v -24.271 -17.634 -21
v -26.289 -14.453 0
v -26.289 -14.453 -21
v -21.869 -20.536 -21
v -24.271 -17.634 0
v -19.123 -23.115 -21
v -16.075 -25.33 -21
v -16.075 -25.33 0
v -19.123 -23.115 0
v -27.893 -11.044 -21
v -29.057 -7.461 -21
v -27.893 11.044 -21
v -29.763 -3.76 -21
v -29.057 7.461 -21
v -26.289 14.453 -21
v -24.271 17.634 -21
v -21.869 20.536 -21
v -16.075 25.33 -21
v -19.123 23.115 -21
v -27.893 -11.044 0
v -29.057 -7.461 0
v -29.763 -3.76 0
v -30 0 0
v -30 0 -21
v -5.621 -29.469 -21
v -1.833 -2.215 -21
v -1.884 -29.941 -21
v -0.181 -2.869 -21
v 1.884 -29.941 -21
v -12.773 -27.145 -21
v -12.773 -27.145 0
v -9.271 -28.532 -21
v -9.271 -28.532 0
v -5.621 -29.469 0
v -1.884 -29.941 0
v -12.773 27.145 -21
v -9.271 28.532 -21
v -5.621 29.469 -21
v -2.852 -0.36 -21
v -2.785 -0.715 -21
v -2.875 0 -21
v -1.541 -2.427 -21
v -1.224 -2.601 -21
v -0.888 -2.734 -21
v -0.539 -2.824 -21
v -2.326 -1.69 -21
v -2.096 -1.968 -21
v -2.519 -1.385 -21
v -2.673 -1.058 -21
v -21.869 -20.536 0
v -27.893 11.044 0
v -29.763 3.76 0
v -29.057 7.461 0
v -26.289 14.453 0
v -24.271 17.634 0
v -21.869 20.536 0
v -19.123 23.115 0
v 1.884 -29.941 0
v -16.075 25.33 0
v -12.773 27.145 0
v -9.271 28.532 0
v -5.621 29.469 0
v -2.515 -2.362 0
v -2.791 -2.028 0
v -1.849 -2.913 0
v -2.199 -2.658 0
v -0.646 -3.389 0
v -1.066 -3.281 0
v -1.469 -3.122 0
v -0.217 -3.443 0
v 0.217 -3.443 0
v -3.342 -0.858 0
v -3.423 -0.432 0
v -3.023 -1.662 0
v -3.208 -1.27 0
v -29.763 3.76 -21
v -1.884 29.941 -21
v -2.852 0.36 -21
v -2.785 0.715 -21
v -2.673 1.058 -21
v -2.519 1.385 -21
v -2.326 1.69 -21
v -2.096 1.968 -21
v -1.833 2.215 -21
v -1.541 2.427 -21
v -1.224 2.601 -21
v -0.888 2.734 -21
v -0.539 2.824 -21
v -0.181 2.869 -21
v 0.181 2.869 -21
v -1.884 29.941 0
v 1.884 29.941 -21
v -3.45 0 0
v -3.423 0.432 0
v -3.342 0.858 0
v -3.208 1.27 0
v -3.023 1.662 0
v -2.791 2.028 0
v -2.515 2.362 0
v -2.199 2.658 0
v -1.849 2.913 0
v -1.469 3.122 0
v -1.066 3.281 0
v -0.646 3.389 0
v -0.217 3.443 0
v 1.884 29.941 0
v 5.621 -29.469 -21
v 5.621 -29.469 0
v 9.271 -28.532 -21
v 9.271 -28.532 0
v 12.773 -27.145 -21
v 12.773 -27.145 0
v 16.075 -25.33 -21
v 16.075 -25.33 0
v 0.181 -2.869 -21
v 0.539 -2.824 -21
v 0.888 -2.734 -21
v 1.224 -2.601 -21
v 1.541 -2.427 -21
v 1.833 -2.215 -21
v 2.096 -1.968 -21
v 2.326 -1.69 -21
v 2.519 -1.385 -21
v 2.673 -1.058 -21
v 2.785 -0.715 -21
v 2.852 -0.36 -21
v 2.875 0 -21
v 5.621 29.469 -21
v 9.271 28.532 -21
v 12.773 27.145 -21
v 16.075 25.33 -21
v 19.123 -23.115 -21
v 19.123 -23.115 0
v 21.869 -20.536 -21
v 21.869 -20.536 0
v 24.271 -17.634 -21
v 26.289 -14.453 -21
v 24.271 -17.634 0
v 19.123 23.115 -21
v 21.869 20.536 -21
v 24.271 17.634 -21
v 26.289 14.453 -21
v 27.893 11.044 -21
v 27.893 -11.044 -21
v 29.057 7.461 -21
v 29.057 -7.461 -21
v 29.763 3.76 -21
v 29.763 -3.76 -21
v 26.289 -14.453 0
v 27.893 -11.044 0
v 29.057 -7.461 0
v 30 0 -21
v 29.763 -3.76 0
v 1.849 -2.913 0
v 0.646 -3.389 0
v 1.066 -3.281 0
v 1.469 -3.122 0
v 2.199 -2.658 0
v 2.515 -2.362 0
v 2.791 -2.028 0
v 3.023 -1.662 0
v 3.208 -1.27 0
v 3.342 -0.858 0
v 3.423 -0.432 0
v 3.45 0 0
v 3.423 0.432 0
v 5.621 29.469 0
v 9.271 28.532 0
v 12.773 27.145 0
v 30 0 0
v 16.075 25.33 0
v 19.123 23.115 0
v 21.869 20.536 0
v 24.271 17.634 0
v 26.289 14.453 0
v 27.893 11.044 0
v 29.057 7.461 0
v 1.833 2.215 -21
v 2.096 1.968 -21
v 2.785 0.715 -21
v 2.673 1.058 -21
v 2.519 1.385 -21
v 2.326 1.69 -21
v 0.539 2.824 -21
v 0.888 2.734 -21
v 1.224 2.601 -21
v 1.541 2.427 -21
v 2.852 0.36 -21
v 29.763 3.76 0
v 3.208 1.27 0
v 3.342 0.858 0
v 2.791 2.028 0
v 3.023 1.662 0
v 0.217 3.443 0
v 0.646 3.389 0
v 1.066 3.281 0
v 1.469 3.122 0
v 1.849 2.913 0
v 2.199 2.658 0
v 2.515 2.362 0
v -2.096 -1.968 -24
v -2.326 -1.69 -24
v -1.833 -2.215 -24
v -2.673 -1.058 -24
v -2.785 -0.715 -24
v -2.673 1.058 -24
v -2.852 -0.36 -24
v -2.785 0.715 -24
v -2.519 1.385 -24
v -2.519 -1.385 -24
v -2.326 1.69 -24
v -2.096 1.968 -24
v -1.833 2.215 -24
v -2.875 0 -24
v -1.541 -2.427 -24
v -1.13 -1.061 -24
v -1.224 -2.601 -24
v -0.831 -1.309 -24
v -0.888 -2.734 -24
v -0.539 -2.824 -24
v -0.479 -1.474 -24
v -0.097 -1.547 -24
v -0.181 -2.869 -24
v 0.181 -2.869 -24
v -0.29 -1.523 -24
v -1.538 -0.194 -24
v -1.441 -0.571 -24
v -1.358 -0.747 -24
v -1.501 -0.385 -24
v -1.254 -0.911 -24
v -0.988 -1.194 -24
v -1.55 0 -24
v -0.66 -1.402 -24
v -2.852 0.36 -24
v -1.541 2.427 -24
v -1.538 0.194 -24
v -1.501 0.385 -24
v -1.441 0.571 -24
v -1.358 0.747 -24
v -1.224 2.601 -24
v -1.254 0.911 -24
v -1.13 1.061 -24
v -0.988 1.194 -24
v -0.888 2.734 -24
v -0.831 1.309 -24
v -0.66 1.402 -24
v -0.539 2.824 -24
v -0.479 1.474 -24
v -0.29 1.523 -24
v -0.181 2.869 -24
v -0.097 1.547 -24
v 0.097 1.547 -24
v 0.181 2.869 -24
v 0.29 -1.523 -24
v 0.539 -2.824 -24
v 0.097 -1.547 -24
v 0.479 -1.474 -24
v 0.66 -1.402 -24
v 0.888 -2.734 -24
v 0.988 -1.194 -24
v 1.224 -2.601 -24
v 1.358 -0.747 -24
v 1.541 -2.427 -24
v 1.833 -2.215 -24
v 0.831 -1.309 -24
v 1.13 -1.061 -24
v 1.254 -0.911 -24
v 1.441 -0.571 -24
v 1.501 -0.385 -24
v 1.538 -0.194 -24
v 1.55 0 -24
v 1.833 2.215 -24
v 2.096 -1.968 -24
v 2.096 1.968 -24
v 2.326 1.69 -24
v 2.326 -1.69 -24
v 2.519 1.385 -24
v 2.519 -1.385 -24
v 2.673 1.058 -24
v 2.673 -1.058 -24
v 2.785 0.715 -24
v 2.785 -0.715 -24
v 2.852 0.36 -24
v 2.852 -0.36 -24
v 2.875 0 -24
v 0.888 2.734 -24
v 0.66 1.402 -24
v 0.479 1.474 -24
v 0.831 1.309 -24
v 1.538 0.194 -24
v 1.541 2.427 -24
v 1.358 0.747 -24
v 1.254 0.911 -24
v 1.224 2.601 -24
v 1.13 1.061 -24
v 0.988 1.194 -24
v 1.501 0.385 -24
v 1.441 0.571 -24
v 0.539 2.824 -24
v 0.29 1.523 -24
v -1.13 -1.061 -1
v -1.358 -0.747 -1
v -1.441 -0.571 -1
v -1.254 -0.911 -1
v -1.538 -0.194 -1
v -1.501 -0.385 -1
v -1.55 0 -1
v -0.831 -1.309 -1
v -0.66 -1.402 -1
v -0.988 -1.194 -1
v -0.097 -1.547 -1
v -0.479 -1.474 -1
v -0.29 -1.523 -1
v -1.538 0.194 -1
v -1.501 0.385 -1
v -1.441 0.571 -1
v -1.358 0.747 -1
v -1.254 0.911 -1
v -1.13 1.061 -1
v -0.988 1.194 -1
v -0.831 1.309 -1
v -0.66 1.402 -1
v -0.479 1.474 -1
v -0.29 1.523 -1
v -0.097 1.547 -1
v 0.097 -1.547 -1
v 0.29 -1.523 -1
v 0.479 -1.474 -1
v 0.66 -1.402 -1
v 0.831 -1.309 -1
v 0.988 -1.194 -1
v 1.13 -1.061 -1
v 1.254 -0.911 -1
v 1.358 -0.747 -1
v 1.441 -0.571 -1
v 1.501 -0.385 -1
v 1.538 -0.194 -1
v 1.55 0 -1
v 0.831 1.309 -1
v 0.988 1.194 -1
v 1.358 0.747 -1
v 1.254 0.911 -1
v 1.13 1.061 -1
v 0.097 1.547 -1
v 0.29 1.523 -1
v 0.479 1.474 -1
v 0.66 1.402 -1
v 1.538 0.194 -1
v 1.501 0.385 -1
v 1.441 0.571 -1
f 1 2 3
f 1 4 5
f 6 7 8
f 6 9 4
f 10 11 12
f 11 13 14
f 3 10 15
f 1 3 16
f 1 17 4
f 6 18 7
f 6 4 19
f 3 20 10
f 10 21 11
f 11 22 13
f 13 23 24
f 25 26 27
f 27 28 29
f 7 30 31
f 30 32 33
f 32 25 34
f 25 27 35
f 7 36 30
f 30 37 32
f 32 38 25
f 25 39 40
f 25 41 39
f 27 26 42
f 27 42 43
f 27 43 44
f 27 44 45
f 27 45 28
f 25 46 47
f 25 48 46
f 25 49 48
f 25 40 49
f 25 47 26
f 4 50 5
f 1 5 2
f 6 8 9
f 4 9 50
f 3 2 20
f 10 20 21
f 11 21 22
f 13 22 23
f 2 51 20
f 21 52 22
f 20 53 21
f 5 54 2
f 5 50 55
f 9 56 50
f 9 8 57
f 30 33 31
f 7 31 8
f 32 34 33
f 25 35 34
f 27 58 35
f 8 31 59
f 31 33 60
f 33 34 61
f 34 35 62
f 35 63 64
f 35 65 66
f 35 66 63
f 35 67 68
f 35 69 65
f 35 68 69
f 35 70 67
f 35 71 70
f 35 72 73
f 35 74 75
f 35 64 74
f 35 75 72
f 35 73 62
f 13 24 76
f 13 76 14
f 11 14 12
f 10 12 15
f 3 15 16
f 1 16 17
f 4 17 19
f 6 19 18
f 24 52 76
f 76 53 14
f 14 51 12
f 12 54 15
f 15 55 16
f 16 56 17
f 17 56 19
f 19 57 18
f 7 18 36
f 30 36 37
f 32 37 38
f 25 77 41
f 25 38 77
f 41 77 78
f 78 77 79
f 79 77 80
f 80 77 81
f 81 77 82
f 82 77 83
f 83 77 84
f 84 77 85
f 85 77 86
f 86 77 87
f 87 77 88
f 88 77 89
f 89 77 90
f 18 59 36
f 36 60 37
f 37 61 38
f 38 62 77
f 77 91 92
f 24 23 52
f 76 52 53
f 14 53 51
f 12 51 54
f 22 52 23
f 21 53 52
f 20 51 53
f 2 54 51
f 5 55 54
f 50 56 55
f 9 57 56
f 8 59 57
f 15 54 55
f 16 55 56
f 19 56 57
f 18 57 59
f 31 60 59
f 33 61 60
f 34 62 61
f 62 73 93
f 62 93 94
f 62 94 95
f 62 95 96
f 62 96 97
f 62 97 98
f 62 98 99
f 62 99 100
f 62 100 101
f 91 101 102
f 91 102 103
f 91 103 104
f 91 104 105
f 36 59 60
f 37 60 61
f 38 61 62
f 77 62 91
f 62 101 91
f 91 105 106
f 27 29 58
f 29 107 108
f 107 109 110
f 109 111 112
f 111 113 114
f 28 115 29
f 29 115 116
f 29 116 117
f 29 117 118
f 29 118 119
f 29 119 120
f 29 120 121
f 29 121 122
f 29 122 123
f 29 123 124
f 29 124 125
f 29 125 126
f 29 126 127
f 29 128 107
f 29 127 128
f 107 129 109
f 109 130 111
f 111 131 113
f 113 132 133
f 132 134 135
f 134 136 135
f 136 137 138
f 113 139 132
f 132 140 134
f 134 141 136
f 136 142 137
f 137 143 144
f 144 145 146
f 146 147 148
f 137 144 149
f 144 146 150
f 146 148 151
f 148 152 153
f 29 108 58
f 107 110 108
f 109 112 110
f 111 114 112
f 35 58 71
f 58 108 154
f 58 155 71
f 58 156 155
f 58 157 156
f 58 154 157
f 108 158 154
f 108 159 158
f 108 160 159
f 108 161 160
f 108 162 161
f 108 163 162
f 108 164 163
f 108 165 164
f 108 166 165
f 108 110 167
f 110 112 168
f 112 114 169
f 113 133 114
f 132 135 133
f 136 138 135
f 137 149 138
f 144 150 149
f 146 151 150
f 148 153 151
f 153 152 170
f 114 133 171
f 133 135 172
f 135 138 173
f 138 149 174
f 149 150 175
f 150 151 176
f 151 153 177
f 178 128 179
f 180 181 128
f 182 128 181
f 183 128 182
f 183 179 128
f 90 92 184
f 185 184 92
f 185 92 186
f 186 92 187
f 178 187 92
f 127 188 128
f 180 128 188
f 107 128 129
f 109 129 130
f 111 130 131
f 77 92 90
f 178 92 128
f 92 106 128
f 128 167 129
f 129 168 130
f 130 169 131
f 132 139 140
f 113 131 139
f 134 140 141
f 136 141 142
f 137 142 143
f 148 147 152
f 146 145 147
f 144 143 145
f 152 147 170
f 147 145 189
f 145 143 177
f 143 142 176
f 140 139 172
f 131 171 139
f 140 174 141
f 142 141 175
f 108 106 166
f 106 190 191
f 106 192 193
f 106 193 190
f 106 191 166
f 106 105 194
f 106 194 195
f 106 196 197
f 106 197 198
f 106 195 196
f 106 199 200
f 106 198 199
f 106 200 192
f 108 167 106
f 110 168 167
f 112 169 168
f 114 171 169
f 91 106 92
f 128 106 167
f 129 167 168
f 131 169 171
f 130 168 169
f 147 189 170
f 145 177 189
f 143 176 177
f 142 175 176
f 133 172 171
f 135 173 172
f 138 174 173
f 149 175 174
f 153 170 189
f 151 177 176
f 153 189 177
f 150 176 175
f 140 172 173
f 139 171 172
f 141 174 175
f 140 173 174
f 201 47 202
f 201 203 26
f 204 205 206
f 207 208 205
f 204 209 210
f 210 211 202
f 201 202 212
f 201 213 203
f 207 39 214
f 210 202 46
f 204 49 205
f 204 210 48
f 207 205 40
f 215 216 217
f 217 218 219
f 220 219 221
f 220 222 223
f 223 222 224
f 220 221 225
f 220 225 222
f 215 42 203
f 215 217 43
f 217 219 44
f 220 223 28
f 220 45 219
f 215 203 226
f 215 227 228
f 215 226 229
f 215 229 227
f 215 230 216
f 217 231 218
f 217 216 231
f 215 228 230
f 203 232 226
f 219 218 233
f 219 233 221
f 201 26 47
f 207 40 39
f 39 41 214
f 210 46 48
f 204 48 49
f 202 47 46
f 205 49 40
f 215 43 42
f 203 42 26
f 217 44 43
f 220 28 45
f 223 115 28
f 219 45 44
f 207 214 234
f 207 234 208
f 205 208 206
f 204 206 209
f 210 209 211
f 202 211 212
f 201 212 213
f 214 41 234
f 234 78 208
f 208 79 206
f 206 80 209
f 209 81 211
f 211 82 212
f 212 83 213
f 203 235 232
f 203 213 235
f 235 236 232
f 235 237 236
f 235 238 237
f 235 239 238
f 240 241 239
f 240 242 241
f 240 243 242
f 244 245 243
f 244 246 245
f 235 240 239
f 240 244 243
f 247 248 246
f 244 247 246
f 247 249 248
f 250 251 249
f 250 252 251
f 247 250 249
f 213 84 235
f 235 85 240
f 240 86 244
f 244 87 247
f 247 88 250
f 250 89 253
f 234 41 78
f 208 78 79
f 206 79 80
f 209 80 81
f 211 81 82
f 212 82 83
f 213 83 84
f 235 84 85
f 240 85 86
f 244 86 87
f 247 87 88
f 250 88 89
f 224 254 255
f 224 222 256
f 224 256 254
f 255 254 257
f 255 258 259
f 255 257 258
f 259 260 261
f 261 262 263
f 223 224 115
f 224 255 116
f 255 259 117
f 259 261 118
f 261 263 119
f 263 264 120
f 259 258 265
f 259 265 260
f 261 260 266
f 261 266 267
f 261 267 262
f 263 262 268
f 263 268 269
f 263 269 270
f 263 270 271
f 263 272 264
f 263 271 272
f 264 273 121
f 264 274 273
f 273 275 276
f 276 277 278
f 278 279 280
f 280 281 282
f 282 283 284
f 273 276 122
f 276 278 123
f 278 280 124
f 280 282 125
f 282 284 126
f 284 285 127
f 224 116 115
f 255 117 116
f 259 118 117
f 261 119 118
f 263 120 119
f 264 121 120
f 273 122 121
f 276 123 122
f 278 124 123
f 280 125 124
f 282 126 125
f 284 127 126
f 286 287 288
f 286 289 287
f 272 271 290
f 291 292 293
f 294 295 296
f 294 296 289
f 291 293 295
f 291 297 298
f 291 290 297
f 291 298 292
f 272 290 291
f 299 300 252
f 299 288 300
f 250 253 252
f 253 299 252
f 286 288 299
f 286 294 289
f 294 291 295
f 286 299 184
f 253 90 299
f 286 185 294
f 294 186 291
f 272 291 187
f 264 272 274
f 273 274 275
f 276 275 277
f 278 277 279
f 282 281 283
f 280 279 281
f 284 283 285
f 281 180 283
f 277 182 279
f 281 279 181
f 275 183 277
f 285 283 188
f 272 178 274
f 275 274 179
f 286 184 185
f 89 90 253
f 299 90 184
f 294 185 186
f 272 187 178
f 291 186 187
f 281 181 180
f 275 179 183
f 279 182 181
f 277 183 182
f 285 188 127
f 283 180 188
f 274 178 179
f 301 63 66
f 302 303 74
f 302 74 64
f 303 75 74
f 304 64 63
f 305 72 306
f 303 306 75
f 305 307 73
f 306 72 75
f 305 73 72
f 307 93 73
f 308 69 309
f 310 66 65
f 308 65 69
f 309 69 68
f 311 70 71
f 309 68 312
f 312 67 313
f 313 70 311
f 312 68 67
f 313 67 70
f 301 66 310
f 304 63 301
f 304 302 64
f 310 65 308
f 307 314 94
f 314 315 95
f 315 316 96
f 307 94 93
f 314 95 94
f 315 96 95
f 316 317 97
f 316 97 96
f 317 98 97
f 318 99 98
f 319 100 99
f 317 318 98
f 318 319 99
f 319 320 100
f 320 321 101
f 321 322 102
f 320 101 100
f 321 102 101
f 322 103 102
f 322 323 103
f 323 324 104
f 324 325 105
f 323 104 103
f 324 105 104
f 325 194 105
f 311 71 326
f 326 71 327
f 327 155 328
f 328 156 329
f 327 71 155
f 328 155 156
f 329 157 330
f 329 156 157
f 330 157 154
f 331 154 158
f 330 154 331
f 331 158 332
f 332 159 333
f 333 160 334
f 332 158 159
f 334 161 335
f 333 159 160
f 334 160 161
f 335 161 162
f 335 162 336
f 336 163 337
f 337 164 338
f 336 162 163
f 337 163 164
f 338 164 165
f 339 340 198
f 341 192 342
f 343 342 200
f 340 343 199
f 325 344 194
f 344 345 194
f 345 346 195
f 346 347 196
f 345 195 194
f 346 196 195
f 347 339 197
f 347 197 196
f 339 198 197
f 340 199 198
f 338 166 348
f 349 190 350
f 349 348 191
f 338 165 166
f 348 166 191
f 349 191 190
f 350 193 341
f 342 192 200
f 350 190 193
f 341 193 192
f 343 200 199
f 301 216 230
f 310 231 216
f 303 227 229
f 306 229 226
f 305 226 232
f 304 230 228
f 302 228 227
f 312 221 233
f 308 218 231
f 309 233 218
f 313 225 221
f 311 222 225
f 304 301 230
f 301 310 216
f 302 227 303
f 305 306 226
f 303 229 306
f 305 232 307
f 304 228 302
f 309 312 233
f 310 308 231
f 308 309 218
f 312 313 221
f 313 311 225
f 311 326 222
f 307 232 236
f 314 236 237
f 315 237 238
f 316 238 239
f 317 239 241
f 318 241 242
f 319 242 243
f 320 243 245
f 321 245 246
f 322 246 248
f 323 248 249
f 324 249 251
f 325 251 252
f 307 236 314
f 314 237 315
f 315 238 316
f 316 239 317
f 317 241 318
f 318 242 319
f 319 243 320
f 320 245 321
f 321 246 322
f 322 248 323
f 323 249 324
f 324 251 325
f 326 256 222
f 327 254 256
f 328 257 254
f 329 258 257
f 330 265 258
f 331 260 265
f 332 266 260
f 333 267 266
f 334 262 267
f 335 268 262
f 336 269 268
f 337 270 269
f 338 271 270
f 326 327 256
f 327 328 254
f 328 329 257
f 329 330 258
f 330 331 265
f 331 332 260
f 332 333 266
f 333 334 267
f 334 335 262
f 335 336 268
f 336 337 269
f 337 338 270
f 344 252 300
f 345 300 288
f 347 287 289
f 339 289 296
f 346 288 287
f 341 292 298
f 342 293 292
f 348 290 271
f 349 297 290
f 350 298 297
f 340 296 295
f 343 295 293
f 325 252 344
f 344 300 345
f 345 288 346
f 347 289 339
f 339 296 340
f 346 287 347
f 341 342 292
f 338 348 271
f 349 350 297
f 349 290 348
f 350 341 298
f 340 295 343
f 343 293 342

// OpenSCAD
$fn = 50;


difference() {
	union() {
		translate(v = [0, 0, -21.0000000000]) {
			cylinder(h = 21, r = 30.0000000000);
		}
		#translate(v = [0, 0, -24.0000000000]) {
			cylinder(h = 24, r = 2.8750000000);
		}
	}
	union() {
		translate(v = [0, 0, 0]) {
			rotate(a = [0, 0, 0]) {
				difference() {
					union() {
						translate(v = [0, 0, -24.0000000000]) {
							cylinder(h = 24, r = 1.2500000000);
						}
						translate(v = [0, 0, -1.0000000000]) {
							cylinder(h = 1.0000000000, r1 = 1.5500000000, r2 = 3.4500000000);
						}
						translate(v = [0, 0, -24.0000000000]) {
							cylinder(h = 24, r = 1.5500000000);
						}
						translate(v = [0, 0, -24.0000000000]) {
							cylinder(h = 24, r = 1.2500000000);
						}
					}
					union();
				}
			}
		}
	}
}
